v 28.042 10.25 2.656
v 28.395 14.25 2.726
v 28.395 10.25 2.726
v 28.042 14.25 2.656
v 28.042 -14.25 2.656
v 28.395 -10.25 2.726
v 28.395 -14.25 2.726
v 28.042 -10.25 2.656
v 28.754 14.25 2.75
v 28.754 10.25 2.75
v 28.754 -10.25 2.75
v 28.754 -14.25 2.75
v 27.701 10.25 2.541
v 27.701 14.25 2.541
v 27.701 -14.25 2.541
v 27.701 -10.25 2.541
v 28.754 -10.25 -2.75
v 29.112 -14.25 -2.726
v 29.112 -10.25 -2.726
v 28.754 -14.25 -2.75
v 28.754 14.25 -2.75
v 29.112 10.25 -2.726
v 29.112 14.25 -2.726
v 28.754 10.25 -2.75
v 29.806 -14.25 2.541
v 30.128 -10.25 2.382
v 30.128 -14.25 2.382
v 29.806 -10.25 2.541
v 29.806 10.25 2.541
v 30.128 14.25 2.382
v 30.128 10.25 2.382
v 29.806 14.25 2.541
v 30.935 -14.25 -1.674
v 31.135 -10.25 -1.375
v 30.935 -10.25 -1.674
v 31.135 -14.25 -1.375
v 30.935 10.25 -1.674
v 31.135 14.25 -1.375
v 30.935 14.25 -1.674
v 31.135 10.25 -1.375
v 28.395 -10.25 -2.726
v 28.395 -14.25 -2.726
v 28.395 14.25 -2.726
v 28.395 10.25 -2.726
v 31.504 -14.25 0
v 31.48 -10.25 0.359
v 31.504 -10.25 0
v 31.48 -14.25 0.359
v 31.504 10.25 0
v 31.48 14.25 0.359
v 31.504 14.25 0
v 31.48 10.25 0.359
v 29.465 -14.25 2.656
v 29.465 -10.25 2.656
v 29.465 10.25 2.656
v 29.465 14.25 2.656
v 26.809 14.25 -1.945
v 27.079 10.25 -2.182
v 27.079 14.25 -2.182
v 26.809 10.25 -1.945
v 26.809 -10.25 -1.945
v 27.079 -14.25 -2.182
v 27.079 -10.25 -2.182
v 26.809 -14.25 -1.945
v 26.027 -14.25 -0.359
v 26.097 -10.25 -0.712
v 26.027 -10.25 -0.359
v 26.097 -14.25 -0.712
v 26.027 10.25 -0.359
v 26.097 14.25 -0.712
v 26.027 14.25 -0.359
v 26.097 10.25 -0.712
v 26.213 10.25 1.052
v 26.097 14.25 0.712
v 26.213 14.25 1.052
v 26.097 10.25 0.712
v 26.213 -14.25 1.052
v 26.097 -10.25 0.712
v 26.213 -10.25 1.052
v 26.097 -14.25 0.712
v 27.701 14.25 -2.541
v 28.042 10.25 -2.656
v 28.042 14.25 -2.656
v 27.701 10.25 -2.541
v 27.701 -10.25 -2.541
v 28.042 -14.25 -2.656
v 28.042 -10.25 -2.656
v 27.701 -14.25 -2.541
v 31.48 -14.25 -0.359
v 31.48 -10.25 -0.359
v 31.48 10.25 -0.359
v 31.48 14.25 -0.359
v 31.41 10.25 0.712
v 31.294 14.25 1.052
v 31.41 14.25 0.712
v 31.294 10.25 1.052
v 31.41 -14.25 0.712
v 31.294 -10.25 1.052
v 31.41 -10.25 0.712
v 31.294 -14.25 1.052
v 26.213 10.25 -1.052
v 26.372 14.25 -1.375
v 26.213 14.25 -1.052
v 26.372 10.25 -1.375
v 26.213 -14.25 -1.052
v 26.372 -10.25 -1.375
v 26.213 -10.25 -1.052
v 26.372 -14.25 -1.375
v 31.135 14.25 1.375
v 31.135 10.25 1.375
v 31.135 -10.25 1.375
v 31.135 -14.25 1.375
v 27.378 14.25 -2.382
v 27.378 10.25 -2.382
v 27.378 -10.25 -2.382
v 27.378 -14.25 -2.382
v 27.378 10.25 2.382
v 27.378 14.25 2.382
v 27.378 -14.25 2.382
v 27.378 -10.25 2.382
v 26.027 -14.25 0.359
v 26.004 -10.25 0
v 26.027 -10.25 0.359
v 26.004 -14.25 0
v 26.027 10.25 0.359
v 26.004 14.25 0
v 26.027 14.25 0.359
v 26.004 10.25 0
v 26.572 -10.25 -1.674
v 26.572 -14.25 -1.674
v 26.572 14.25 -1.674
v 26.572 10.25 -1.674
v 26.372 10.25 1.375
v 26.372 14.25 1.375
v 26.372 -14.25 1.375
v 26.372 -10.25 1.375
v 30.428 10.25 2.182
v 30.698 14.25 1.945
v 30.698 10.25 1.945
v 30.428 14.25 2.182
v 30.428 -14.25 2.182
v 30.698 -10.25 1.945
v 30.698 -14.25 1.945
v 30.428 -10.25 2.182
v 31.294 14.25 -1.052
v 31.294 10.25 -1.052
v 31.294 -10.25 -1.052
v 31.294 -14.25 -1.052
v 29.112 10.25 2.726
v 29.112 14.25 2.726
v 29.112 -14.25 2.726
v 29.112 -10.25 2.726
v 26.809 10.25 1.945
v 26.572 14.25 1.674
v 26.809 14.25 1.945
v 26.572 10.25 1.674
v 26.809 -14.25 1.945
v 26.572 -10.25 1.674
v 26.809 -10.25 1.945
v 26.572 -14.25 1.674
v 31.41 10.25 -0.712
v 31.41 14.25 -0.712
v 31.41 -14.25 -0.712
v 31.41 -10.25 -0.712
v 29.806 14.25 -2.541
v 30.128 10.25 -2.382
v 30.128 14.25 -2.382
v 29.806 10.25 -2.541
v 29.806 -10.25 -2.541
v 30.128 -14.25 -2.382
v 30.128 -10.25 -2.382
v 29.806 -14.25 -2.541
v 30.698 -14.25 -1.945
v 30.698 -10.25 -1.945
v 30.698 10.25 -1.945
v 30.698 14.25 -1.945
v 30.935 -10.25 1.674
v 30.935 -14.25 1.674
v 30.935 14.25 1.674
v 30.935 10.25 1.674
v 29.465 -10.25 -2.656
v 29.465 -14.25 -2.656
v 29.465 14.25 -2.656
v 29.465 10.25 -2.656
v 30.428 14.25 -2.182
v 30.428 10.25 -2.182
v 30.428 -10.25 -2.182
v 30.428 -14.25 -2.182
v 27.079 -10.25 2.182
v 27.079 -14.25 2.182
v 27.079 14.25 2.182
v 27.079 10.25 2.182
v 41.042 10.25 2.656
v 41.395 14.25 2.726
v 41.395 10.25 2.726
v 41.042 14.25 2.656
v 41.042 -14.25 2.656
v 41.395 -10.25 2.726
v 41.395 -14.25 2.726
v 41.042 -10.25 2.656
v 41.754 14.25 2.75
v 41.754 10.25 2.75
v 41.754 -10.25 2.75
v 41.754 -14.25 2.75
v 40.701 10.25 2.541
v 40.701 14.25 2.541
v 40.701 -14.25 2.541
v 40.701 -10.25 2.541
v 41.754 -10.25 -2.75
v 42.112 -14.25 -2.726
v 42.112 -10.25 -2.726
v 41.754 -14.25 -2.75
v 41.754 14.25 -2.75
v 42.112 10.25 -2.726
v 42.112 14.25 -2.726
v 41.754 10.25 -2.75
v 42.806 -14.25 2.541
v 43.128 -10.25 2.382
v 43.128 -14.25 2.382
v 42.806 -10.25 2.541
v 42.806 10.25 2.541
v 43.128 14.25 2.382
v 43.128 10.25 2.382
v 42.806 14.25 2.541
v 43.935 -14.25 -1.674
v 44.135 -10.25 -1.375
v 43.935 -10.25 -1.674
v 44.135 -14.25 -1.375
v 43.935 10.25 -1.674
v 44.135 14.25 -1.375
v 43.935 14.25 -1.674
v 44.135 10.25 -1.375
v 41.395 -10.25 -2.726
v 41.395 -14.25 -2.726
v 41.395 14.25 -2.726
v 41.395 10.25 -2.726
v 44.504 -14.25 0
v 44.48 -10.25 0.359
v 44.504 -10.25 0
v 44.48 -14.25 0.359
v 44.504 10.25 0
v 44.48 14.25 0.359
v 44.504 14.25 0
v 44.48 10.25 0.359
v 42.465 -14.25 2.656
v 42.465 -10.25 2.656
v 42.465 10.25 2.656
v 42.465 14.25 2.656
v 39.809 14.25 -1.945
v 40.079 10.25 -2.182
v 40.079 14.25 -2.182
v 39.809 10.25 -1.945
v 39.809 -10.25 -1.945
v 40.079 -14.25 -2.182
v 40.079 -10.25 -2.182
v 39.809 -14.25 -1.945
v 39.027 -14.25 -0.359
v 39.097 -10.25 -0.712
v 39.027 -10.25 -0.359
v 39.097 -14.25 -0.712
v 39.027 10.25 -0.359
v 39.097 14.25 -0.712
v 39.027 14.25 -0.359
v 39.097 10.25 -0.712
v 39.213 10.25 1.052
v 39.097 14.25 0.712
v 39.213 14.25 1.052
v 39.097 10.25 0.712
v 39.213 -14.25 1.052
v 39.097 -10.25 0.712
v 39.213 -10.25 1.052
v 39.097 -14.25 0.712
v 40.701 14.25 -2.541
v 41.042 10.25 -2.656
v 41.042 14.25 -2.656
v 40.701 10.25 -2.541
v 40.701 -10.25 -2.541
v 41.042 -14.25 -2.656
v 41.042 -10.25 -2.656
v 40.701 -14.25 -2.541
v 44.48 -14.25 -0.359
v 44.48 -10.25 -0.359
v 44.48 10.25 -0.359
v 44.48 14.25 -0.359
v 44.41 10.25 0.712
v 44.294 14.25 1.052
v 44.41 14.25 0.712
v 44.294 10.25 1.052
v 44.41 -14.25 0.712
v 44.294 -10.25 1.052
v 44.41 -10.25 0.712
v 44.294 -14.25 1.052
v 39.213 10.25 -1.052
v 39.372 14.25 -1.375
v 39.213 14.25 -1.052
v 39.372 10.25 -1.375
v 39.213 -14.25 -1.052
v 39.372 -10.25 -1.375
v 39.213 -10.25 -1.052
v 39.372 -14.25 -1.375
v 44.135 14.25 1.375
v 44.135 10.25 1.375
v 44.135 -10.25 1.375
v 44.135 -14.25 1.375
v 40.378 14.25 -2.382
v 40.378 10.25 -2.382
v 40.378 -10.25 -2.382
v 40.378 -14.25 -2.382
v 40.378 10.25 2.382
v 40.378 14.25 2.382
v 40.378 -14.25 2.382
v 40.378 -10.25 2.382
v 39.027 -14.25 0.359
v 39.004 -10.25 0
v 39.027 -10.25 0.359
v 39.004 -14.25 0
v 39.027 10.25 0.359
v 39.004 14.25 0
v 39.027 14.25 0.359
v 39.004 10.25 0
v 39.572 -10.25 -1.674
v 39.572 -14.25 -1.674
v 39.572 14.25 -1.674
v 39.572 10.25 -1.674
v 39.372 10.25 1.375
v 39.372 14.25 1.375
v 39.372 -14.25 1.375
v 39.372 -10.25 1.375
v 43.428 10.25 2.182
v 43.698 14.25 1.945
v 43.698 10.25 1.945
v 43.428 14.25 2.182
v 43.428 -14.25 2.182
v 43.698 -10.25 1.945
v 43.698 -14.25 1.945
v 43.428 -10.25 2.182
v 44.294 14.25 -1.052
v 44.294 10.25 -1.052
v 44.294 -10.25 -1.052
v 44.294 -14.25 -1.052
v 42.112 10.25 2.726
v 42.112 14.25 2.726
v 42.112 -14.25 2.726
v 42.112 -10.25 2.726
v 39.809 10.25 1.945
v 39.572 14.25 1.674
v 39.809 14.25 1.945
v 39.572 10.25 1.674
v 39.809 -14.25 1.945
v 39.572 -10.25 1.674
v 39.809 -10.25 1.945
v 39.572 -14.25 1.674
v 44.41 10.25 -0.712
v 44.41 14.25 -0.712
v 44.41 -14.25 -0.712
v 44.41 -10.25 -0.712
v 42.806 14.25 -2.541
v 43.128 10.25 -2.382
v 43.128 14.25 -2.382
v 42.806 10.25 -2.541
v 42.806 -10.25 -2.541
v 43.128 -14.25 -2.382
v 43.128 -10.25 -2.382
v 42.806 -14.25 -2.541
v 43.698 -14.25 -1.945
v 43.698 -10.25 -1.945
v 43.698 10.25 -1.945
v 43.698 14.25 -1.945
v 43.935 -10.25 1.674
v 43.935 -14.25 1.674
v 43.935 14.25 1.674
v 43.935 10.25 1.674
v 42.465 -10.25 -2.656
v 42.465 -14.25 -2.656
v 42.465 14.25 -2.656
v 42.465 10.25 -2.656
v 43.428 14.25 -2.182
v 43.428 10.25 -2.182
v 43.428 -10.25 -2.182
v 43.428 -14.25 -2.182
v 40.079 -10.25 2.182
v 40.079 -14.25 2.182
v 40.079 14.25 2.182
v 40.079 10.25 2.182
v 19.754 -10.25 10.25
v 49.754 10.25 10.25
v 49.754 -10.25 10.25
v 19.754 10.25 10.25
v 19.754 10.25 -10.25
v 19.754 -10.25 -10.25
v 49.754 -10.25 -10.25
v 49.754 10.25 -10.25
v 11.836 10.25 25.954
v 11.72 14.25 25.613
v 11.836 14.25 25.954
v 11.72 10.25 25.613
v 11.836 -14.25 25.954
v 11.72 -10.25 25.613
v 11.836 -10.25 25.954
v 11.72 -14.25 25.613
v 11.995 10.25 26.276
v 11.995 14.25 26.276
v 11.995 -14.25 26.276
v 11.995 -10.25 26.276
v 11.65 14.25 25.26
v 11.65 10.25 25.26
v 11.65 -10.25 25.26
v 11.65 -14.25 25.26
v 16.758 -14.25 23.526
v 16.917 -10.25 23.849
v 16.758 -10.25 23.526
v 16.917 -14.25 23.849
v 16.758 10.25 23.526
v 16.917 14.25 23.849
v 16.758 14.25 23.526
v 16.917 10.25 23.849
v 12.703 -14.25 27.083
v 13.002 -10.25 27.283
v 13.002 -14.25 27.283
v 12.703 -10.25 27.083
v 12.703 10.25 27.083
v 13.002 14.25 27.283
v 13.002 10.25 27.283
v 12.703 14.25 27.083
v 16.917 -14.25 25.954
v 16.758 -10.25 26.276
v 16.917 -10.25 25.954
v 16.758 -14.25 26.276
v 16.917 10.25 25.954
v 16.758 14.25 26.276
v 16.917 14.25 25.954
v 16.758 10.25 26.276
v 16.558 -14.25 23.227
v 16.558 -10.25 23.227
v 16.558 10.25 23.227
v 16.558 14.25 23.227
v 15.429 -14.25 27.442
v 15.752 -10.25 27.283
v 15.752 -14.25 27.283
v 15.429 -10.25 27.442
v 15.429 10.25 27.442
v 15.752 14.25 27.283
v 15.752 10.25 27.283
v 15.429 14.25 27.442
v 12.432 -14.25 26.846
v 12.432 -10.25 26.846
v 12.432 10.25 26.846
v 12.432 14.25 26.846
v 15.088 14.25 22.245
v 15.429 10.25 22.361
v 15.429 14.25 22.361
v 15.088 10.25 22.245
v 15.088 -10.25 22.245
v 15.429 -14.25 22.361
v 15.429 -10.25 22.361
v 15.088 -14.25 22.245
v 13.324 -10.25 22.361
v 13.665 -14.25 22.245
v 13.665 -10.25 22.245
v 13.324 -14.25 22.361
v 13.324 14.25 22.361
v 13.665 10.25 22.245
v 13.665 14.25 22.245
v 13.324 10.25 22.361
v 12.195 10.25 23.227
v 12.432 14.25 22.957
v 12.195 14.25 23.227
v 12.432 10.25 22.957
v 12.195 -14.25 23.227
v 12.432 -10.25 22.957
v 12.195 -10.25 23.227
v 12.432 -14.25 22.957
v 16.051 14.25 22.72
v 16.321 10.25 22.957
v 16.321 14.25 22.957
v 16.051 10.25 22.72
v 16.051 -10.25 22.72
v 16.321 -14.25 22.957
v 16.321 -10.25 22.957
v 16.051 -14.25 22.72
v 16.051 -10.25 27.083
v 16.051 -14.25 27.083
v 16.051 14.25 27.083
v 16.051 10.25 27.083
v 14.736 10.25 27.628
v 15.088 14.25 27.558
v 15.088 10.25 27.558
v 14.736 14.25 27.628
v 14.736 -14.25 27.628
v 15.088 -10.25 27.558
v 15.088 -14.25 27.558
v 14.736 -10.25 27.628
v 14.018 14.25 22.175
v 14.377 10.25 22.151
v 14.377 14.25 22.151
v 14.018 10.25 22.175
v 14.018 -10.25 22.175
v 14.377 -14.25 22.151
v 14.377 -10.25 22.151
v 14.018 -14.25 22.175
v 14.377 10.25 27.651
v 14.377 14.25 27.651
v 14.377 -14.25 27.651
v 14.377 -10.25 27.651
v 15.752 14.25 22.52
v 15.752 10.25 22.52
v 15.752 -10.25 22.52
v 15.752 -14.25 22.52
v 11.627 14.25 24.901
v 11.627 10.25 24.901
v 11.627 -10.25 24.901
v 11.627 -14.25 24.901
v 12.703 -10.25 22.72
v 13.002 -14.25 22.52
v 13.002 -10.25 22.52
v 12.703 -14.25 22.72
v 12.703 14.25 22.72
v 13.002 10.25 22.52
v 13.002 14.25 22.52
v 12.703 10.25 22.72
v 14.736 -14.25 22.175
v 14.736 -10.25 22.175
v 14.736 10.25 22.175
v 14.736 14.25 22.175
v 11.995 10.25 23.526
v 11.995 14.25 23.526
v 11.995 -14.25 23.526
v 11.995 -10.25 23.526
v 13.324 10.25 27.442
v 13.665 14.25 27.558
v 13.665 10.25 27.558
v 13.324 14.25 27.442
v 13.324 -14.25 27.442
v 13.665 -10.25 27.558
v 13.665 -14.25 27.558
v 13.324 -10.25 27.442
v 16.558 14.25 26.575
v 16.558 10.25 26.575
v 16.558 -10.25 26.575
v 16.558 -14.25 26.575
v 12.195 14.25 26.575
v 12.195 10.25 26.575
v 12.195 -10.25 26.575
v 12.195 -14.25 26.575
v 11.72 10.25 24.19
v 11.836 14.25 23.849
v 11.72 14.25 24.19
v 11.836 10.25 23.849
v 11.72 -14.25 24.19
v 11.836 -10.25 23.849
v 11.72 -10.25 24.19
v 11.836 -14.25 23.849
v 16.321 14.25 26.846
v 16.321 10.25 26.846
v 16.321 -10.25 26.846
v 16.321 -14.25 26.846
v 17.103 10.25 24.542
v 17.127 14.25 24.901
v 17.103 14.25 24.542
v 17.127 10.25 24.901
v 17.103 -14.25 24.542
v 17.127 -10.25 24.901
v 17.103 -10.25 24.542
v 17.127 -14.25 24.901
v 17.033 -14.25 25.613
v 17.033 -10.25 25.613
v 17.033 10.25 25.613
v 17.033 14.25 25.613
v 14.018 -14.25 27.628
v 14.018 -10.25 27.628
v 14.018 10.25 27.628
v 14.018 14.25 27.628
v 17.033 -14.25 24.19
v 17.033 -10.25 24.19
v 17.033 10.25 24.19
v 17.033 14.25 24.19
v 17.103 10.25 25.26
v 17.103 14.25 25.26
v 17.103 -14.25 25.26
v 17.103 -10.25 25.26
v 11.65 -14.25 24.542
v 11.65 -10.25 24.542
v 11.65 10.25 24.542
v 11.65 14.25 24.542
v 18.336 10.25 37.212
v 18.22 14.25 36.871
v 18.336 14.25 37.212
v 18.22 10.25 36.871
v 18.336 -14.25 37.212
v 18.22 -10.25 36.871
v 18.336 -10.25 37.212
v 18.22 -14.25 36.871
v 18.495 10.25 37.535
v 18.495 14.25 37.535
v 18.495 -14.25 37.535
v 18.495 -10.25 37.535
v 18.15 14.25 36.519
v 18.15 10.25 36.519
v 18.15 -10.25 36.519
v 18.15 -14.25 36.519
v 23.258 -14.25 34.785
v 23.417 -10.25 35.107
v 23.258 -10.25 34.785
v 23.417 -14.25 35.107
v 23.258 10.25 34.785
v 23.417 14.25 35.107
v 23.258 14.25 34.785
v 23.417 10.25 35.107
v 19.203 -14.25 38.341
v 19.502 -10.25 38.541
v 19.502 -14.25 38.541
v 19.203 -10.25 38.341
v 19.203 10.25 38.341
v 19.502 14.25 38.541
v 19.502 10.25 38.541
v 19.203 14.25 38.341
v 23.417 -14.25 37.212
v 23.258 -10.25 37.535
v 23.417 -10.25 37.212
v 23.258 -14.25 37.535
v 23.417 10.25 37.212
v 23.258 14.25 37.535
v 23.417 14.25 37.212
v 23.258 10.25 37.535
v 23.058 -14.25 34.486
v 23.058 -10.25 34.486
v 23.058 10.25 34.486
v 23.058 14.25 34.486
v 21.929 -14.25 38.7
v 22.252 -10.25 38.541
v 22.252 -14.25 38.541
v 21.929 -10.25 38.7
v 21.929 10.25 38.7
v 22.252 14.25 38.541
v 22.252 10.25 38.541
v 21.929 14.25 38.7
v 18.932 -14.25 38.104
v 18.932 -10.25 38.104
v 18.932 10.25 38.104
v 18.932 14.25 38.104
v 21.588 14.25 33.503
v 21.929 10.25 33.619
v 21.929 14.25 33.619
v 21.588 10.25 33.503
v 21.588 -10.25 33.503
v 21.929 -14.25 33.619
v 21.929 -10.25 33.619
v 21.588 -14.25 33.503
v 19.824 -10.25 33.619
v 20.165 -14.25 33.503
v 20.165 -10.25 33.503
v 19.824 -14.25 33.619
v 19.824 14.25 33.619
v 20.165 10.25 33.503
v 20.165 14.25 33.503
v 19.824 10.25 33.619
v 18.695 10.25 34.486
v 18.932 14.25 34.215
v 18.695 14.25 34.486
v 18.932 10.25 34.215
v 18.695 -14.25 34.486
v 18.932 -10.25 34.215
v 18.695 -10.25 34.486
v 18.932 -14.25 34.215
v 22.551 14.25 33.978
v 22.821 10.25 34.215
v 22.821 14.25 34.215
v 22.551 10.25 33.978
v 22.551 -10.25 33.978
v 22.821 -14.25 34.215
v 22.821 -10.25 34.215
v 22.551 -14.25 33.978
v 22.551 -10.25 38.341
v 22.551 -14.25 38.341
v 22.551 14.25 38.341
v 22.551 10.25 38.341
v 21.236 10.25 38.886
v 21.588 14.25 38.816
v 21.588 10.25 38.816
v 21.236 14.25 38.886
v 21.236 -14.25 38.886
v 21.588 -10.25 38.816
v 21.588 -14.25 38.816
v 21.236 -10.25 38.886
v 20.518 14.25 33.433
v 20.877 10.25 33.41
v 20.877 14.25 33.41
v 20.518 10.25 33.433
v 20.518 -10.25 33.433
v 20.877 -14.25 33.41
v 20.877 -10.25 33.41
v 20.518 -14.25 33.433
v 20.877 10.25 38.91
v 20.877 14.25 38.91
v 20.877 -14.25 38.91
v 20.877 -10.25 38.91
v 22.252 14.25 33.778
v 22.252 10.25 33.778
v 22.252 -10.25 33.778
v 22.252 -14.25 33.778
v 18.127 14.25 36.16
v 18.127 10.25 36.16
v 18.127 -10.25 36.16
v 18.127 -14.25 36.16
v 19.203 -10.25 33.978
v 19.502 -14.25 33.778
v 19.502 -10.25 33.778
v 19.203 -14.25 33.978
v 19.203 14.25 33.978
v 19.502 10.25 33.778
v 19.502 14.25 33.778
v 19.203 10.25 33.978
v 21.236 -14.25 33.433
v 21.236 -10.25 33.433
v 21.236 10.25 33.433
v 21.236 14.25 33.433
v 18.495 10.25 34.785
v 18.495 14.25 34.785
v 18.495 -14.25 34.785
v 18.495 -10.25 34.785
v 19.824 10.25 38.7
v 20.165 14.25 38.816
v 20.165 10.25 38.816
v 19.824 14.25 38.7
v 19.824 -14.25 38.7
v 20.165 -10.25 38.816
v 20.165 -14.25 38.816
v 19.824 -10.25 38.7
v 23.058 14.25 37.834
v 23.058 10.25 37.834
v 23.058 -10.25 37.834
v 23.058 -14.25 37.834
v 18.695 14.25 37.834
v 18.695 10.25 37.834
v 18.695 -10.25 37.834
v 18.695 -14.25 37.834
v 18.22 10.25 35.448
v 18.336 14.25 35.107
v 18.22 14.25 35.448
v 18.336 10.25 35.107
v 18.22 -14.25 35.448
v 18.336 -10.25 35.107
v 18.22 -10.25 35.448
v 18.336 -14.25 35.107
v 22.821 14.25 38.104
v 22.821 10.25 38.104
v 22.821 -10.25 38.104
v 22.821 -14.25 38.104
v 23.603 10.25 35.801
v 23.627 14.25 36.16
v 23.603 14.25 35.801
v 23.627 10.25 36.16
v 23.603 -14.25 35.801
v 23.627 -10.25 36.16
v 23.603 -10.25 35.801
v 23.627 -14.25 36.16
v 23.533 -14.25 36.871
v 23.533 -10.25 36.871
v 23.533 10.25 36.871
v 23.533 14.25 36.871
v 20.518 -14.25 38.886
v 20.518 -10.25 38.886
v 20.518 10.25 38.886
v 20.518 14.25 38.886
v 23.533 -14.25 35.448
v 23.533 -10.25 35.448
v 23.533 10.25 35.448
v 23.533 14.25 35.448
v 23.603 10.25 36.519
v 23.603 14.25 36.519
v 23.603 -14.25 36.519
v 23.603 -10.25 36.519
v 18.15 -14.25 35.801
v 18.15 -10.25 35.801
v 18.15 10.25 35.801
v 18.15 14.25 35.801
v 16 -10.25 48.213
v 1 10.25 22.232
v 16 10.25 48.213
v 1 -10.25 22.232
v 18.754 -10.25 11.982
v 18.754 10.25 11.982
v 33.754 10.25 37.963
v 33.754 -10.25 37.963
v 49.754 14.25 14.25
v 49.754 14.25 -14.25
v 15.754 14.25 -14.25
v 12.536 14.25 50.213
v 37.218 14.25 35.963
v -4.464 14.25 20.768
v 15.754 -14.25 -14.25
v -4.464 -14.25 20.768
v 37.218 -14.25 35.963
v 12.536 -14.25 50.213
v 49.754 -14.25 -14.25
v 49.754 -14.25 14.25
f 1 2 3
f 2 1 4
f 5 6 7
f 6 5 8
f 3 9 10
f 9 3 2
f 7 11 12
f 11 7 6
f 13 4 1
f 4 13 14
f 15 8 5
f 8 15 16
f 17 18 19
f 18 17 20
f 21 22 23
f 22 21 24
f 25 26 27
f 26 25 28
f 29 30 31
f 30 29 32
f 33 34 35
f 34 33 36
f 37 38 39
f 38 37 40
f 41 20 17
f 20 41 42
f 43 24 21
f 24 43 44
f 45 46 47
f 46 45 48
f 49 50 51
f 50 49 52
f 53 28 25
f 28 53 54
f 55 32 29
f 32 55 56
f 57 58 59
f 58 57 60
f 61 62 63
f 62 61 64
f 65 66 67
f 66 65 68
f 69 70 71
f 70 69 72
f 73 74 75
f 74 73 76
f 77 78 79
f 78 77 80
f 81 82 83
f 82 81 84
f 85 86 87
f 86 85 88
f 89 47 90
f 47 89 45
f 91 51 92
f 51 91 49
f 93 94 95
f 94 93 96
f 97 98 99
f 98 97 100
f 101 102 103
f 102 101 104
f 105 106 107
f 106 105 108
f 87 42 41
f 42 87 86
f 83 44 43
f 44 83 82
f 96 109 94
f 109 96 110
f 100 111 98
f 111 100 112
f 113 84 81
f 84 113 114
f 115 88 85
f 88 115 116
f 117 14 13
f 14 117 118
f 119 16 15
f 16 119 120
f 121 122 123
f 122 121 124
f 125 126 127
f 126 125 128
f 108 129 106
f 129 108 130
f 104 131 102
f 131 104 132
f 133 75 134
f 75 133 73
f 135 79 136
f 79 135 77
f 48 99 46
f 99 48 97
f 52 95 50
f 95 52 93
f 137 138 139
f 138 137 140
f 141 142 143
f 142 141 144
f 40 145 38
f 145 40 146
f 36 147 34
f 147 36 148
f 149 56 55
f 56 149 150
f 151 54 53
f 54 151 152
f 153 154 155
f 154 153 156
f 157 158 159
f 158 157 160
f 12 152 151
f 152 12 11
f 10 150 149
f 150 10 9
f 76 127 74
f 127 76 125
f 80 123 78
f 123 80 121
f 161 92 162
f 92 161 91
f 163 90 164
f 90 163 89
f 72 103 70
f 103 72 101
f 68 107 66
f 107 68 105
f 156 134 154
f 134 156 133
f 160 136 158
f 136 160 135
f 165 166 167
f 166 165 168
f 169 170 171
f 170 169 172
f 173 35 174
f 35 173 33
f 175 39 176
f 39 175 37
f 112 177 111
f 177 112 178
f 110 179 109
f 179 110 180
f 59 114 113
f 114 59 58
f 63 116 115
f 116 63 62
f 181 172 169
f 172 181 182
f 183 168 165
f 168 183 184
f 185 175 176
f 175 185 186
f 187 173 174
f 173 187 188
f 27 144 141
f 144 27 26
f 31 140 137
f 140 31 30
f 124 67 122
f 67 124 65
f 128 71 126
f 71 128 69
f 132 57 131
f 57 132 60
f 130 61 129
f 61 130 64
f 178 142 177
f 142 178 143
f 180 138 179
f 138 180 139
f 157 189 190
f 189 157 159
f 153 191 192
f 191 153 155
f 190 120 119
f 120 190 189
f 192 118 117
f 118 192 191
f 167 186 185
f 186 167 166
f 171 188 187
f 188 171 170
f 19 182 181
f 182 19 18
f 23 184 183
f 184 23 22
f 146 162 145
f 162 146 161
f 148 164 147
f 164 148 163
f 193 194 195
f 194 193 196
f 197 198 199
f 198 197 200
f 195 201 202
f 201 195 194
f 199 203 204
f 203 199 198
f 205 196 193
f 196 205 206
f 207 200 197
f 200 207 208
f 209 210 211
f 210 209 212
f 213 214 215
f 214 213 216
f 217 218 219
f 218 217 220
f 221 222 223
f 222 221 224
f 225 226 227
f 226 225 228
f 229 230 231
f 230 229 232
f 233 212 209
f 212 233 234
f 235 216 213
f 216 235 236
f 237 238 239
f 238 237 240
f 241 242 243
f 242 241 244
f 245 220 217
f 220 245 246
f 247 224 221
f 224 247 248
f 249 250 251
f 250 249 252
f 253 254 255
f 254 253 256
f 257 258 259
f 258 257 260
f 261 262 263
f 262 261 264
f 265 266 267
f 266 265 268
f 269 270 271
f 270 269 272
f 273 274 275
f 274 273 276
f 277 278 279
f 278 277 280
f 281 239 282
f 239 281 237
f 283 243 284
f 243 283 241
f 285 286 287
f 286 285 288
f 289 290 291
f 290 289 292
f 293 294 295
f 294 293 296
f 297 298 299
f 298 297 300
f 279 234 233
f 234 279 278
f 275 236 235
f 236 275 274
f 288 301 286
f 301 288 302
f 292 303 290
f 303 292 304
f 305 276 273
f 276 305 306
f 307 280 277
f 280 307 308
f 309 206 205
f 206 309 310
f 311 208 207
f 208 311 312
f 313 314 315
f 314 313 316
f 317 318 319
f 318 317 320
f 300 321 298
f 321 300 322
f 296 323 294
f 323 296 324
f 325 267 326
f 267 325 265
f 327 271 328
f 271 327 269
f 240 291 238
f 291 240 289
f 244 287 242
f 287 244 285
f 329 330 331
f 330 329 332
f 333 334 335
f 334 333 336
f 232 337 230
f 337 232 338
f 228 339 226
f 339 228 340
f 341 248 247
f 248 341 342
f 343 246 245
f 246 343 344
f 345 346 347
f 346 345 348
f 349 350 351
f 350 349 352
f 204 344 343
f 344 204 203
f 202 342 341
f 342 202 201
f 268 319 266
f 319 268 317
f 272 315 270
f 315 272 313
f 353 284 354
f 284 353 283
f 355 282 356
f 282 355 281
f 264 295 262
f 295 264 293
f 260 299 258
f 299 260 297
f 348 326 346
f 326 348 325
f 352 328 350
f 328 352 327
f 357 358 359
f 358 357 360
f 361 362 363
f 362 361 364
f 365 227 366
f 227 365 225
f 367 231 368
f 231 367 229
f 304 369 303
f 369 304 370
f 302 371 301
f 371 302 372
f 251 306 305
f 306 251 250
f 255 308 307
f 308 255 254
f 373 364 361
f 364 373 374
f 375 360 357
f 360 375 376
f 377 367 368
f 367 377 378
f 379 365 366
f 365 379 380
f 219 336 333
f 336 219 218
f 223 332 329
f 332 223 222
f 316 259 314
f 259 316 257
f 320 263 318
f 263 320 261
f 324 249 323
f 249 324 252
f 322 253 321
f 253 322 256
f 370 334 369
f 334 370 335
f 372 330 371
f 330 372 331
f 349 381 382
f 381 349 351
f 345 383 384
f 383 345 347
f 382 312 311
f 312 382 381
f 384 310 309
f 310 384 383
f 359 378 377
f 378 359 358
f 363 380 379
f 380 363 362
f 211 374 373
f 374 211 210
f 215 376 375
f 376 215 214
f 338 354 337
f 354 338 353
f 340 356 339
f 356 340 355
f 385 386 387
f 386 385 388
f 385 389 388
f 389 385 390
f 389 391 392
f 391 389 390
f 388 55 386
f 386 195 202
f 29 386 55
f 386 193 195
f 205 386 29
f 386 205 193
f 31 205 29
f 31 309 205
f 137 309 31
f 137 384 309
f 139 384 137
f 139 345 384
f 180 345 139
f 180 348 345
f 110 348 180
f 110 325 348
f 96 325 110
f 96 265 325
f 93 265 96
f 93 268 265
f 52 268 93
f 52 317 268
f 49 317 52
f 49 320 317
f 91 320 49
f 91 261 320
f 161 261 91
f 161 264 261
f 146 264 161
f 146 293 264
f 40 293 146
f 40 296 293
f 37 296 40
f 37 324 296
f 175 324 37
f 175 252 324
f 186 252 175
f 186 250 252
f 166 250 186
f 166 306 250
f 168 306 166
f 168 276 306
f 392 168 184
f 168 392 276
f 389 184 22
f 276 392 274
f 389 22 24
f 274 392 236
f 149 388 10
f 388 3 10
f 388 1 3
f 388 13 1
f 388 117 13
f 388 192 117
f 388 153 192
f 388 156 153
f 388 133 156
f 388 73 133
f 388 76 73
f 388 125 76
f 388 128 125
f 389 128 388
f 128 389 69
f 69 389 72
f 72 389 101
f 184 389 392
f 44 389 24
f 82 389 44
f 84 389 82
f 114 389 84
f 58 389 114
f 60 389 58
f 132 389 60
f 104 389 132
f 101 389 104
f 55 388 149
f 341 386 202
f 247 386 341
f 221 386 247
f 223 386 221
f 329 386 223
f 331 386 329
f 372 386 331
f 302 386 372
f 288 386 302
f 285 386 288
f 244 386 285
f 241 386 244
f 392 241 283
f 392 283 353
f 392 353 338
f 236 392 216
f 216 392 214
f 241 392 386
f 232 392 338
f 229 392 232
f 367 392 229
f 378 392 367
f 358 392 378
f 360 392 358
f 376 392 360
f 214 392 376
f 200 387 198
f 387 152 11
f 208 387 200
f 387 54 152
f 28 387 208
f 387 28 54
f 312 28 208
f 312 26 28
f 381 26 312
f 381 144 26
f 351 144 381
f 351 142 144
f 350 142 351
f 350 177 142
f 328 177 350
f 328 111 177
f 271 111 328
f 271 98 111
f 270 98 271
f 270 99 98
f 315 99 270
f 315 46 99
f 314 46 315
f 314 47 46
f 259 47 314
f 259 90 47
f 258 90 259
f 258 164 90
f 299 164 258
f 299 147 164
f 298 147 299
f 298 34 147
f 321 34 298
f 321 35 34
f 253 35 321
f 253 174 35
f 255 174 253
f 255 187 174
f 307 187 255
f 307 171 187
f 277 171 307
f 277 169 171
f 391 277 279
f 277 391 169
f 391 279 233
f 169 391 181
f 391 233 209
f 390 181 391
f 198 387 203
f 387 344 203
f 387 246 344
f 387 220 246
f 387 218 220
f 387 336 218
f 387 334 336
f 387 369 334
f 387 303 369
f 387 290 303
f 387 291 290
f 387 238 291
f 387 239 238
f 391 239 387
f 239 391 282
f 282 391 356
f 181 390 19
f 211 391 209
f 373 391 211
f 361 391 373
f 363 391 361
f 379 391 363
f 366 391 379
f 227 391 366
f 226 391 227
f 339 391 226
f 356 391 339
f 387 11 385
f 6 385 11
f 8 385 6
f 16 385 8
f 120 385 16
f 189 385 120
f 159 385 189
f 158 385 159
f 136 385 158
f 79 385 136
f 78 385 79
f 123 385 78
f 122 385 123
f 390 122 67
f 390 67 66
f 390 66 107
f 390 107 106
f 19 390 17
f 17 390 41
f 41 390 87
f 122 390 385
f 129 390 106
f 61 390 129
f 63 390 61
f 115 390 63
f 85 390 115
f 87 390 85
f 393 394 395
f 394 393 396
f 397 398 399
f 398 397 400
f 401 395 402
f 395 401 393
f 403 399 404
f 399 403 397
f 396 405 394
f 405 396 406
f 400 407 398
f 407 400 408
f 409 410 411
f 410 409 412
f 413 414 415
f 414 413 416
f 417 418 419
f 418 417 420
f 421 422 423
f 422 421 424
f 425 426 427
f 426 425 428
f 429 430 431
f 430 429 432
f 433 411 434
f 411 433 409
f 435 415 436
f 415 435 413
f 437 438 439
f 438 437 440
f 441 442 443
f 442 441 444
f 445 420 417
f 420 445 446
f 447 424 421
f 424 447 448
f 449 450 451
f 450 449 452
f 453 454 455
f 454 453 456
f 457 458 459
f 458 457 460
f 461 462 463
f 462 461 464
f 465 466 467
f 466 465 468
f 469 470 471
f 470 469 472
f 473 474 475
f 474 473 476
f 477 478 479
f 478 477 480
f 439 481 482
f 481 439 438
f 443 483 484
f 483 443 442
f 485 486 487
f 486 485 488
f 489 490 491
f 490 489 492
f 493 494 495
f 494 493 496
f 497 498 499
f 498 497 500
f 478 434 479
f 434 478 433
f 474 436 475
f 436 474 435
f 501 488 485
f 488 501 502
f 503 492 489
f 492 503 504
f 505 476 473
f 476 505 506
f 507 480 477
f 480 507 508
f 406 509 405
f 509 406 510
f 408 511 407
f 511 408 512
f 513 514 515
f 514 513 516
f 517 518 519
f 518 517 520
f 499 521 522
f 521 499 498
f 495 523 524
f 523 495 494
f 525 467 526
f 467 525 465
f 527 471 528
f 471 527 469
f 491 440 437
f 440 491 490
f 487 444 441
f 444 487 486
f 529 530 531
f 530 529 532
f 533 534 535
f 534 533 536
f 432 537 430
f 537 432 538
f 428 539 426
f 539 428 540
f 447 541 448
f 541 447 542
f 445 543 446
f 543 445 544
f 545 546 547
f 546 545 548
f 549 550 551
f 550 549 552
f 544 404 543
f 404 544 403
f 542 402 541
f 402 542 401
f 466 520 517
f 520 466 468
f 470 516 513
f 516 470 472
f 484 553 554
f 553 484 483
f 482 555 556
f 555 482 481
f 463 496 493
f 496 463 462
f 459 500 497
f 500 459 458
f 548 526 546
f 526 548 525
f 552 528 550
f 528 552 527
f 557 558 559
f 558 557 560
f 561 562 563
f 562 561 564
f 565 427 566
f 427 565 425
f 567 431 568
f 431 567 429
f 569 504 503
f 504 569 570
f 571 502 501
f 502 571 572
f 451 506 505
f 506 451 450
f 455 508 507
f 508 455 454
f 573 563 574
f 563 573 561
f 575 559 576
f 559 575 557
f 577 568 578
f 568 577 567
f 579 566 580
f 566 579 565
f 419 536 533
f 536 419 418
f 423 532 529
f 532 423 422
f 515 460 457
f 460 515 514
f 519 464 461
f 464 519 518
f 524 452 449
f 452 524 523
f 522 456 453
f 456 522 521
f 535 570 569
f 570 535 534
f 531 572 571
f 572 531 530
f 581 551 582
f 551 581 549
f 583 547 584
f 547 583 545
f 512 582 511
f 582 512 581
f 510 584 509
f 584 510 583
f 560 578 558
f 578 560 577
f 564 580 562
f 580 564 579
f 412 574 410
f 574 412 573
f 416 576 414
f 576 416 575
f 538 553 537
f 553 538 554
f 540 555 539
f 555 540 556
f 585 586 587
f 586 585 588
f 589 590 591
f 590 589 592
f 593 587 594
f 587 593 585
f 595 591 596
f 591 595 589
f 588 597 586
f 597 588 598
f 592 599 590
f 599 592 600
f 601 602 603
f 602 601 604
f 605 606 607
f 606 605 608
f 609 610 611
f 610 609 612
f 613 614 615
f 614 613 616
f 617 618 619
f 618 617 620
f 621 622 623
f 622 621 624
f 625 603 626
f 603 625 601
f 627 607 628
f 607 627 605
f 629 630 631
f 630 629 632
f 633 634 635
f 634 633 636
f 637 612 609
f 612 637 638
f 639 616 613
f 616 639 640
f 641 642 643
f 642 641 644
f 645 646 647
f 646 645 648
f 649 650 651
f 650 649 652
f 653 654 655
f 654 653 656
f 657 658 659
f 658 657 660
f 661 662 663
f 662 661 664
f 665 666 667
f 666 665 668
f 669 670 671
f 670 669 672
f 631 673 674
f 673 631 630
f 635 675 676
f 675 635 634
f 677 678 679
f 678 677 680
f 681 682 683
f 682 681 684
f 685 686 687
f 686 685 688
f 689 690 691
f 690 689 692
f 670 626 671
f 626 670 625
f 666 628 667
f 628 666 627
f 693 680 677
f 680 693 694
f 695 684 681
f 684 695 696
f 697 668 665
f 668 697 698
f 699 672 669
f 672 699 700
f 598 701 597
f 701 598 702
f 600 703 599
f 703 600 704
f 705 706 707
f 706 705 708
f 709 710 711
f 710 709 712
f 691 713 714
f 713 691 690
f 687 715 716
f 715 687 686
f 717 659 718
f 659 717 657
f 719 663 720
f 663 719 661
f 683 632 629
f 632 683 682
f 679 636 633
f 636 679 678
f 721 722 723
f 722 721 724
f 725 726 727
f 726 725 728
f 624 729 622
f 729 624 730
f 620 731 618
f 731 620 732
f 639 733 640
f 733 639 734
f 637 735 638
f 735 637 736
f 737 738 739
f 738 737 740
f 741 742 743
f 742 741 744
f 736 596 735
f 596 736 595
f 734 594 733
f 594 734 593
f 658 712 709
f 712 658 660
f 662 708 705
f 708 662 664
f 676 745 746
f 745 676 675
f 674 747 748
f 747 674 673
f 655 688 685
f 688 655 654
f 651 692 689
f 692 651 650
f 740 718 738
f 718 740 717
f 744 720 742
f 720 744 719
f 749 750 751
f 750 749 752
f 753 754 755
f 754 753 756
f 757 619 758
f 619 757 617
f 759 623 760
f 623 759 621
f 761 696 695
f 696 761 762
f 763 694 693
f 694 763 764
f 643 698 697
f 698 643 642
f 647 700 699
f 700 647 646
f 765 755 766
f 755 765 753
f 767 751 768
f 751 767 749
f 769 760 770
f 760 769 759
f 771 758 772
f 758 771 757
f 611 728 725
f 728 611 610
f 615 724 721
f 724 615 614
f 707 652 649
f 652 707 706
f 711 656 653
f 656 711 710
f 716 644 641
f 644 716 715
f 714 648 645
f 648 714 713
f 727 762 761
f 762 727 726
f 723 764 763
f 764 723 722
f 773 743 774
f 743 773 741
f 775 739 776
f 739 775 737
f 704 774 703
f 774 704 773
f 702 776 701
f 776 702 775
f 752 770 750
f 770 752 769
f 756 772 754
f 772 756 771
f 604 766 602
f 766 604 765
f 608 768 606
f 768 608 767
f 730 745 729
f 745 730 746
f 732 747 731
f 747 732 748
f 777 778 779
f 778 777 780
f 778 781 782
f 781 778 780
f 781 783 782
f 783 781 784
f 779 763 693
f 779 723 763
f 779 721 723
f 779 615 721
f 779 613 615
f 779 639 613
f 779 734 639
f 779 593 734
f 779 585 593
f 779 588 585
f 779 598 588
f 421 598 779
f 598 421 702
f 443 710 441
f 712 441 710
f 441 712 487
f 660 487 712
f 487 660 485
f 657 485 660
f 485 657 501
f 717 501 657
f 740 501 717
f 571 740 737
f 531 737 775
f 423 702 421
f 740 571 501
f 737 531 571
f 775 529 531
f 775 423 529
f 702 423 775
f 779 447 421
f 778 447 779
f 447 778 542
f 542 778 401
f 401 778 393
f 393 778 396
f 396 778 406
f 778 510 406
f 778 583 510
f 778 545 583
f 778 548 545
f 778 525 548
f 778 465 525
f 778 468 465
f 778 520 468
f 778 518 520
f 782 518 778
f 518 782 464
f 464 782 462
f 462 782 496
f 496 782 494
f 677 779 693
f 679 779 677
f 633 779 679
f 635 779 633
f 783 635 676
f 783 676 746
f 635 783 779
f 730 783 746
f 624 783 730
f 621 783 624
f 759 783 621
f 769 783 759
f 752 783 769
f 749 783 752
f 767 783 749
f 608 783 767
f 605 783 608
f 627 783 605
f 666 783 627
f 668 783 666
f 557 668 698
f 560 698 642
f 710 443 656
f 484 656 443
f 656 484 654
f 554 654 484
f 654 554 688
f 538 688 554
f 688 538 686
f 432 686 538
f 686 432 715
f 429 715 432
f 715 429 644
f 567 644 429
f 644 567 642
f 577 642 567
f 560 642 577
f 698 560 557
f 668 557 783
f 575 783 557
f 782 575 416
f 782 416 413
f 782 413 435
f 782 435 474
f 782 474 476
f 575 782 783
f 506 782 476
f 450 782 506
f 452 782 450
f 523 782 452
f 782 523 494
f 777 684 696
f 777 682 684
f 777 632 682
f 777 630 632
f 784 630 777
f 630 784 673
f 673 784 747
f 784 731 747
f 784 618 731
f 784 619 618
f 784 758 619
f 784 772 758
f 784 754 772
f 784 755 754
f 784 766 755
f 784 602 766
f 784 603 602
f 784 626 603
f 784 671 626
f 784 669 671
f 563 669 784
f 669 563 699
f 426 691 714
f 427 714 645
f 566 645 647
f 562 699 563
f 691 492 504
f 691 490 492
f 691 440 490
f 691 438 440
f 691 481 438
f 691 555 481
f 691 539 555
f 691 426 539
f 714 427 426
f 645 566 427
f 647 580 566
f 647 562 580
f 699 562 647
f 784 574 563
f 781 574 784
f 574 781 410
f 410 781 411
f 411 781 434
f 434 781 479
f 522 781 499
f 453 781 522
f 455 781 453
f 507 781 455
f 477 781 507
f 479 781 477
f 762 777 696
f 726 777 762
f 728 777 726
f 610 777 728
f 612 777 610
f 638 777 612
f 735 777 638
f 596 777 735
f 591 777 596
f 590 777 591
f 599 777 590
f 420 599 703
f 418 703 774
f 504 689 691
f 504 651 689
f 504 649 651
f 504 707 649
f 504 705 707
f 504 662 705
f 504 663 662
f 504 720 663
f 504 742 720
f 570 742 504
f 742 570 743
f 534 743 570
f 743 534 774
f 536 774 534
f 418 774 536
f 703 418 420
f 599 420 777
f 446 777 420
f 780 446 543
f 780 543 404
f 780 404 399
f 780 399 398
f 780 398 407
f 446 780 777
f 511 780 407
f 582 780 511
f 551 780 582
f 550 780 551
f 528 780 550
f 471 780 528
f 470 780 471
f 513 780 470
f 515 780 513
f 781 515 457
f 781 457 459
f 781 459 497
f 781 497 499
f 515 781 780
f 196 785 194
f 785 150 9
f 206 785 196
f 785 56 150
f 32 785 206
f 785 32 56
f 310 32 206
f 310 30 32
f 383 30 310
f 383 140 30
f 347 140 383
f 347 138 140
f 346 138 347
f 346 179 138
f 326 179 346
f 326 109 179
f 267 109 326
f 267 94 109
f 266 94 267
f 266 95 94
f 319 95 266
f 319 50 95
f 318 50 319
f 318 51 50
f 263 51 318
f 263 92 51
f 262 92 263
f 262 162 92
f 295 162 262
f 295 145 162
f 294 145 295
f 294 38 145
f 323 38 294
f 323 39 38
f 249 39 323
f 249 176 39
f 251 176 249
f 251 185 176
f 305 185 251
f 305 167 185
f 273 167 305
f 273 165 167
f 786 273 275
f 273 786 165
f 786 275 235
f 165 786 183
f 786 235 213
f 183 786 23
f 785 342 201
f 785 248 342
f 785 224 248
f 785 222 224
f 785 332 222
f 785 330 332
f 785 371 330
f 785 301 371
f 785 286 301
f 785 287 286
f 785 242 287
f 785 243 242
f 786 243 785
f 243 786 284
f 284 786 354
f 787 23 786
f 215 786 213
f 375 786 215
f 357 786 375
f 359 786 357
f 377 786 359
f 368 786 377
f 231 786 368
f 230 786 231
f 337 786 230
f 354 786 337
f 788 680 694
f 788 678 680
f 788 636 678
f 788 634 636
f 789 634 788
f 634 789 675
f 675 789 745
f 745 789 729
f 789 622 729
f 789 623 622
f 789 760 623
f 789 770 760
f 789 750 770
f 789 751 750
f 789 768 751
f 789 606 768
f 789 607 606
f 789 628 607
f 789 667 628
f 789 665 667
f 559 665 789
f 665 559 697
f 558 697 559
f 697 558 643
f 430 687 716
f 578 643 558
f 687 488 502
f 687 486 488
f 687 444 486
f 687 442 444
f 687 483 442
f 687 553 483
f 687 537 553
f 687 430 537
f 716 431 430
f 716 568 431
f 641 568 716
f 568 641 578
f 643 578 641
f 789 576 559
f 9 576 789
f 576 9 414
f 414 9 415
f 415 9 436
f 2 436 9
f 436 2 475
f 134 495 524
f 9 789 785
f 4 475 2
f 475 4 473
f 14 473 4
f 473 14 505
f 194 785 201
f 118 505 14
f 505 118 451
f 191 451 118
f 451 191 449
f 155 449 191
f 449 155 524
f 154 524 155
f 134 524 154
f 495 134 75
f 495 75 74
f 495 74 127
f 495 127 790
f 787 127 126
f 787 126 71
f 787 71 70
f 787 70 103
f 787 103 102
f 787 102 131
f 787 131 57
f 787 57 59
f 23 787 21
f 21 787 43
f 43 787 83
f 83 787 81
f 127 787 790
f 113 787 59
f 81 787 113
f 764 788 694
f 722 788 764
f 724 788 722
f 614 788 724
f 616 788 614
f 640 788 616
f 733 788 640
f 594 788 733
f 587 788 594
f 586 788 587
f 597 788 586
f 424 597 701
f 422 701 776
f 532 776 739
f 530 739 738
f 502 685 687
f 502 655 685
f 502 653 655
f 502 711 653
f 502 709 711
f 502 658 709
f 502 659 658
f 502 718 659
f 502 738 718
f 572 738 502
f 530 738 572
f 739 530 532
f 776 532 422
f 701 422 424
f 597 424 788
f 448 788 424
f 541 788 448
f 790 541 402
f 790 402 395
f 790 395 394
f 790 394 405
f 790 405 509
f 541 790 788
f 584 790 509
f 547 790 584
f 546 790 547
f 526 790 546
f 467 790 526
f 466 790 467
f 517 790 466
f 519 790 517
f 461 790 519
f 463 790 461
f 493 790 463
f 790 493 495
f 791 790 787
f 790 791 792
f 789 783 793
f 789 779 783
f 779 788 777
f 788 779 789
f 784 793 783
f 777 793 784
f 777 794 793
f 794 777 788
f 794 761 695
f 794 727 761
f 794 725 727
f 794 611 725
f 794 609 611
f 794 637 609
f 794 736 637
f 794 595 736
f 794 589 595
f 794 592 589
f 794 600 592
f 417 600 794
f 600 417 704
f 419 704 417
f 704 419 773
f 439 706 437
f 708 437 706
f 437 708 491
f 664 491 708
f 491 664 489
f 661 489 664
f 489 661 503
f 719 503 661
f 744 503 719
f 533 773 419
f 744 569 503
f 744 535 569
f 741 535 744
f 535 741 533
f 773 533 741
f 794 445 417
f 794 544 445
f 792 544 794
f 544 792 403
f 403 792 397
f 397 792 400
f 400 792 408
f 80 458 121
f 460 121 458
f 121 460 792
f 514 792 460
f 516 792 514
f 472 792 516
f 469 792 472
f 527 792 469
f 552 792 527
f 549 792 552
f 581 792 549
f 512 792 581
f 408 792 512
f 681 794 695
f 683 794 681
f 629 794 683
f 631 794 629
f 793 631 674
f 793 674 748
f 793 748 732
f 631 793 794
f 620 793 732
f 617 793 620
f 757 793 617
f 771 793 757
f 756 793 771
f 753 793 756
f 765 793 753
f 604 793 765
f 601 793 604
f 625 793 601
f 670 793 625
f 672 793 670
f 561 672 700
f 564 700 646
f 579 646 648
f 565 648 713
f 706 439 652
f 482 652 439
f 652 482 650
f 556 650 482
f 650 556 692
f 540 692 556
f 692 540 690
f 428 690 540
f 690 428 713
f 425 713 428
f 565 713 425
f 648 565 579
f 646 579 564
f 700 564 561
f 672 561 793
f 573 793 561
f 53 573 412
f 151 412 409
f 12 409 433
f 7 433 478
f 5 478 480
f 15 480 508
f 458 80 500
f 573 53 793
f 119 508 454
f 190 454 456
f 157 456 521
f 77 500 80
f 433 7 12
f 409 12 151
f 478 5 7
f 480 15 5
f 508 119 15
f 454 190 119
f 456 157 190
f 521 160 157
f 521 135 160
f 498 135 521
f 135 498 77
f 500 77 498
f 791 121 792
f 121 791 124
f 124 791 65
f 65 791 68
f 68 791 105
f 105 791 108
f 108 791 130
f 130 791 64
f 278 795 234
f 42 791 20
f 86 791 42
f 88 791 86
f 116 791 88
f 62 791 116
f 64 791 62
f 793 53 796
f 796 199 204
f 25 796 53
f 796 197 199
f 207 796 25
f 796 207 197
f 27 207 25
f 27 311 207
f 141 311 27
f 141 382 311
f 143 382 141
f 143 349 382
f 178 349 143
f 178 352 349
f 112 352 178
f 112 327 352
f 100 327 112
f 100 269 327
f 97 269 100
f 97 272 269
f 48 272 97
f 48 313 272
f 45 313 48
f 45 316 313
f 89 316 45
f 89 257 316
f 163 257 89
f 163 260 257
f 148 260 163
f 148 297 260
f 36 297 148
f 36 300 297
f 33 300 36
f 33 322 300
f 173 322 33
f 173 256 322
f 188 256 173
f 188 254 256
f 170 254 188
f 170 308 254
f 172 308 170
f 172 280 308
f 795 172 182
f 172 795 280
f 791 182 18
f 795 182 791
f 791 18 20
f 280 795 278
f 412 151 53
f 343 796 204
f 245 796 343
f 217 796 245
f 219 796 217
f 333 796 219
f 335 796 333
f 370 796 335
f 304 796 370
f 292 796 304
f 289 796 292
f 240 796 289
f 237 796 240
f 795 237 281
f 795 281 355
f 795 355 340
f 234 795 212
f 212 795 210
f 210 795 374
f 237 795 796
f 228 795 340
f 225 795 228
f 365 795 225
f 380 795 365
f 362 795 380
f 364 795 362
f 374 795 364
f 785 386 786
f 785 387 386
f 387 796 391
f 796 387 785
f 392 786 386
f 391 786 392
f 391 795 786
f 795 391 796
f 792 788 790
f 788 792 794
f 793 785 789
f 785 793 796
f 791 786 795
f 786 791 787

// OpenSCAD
// file: common-2020.scad
// Shared socket geometry for the scanner stand brackets.
// A socket holds the end of a 2020 profile running down -Z from its closed end at z=0.

$fn = 48;

profile     = 20;
clearance   = 0.25;   // per side; raise if the profile will not slide in
wall        = 4;
depth       = 30;     // how far a profile slides into a socket
screw_d     = 5.5;
screw_depth = [9, 22];

inner = profile + 2 * clearance;
outer = inner + 2 * wall;
far   = 400;          // long enough to clear anything a hull adds in a profile's path

module socket_body() translate([-outer / 2, -outer / 2, -depth]) cube([outer, outer, depth + wall]);

module socket_void() translate([-inner / 2, -inner / 2, -far]) cube([inner, inner, far]);

// M5 holes through the front and back walls, into T-nuts in the profile's slots.
module socket_screws(depths = screw_depth)
    for (d = depths)
        translate([0, 0, -d]) rotate([90, 0, 0]) cylinder(d = screw_d, h = outer + 2, center = true);
// file: triangle-2020.scad
// Shared geometry for the triangle stand: two upright triangles of 2020 profile,
// joined at their apexes by a cross bar that carries the camera, the Pi and a light.
// Each triangle lies in the XZ plane; the corner of a bracket is where the profiles'
// centre lines meet, at the origin.

include <common-2020.scad>

leg_rise = 60;   // angle of a leg above the base; 60 makes the triangles equilateral

// How far a profile's end stays back from the corner, so two profiles meeting at
// `between` degrees clear each other with a little wall left between them.
function setback(between) = (inner / 2) / tan(between / 2) + 2;

// Socket for a profile leaving the corner at `a` degrees from +X toward +Z.
// Its screws run along Y, through the bracket's flat front and back faces.
module bar_frame(a, s) rotate([0, -(90 + a), 0]) translate([0, 0, -s]) children();

// Two sockets `between` degrees apart, filled in between.
module vee(a1, a2) {
    s = setback(abs(a2 - a1));
    difference() {
        hull() {
            bar_frame(a1, s) socket_body();
            bar_frame(a2, s) socket_body();
            children();
        }
        for (a = [a1, a2]) bar_frame(a, s) { socket_void(); socket_screws(); }
    }
}
// main file
// Base corner bracket for the triangle stand.
// Joins the base profile, lying on the table, to a leg rising at leg_rise.
// The same part turned over serves the other end of the base: print 4.
//
// Hardware: 8x M5x10 button head + 8x M5 T-nuts (slot 6), 2 per side per profile.
// Print lying on one of the large flat sides, PETG, 4+ walls, 40% infill, no supports.

include <triangle-2020.scad>

// Base runs along +X, the leg up and across it toward +X.
vee(0, leg_rise);
